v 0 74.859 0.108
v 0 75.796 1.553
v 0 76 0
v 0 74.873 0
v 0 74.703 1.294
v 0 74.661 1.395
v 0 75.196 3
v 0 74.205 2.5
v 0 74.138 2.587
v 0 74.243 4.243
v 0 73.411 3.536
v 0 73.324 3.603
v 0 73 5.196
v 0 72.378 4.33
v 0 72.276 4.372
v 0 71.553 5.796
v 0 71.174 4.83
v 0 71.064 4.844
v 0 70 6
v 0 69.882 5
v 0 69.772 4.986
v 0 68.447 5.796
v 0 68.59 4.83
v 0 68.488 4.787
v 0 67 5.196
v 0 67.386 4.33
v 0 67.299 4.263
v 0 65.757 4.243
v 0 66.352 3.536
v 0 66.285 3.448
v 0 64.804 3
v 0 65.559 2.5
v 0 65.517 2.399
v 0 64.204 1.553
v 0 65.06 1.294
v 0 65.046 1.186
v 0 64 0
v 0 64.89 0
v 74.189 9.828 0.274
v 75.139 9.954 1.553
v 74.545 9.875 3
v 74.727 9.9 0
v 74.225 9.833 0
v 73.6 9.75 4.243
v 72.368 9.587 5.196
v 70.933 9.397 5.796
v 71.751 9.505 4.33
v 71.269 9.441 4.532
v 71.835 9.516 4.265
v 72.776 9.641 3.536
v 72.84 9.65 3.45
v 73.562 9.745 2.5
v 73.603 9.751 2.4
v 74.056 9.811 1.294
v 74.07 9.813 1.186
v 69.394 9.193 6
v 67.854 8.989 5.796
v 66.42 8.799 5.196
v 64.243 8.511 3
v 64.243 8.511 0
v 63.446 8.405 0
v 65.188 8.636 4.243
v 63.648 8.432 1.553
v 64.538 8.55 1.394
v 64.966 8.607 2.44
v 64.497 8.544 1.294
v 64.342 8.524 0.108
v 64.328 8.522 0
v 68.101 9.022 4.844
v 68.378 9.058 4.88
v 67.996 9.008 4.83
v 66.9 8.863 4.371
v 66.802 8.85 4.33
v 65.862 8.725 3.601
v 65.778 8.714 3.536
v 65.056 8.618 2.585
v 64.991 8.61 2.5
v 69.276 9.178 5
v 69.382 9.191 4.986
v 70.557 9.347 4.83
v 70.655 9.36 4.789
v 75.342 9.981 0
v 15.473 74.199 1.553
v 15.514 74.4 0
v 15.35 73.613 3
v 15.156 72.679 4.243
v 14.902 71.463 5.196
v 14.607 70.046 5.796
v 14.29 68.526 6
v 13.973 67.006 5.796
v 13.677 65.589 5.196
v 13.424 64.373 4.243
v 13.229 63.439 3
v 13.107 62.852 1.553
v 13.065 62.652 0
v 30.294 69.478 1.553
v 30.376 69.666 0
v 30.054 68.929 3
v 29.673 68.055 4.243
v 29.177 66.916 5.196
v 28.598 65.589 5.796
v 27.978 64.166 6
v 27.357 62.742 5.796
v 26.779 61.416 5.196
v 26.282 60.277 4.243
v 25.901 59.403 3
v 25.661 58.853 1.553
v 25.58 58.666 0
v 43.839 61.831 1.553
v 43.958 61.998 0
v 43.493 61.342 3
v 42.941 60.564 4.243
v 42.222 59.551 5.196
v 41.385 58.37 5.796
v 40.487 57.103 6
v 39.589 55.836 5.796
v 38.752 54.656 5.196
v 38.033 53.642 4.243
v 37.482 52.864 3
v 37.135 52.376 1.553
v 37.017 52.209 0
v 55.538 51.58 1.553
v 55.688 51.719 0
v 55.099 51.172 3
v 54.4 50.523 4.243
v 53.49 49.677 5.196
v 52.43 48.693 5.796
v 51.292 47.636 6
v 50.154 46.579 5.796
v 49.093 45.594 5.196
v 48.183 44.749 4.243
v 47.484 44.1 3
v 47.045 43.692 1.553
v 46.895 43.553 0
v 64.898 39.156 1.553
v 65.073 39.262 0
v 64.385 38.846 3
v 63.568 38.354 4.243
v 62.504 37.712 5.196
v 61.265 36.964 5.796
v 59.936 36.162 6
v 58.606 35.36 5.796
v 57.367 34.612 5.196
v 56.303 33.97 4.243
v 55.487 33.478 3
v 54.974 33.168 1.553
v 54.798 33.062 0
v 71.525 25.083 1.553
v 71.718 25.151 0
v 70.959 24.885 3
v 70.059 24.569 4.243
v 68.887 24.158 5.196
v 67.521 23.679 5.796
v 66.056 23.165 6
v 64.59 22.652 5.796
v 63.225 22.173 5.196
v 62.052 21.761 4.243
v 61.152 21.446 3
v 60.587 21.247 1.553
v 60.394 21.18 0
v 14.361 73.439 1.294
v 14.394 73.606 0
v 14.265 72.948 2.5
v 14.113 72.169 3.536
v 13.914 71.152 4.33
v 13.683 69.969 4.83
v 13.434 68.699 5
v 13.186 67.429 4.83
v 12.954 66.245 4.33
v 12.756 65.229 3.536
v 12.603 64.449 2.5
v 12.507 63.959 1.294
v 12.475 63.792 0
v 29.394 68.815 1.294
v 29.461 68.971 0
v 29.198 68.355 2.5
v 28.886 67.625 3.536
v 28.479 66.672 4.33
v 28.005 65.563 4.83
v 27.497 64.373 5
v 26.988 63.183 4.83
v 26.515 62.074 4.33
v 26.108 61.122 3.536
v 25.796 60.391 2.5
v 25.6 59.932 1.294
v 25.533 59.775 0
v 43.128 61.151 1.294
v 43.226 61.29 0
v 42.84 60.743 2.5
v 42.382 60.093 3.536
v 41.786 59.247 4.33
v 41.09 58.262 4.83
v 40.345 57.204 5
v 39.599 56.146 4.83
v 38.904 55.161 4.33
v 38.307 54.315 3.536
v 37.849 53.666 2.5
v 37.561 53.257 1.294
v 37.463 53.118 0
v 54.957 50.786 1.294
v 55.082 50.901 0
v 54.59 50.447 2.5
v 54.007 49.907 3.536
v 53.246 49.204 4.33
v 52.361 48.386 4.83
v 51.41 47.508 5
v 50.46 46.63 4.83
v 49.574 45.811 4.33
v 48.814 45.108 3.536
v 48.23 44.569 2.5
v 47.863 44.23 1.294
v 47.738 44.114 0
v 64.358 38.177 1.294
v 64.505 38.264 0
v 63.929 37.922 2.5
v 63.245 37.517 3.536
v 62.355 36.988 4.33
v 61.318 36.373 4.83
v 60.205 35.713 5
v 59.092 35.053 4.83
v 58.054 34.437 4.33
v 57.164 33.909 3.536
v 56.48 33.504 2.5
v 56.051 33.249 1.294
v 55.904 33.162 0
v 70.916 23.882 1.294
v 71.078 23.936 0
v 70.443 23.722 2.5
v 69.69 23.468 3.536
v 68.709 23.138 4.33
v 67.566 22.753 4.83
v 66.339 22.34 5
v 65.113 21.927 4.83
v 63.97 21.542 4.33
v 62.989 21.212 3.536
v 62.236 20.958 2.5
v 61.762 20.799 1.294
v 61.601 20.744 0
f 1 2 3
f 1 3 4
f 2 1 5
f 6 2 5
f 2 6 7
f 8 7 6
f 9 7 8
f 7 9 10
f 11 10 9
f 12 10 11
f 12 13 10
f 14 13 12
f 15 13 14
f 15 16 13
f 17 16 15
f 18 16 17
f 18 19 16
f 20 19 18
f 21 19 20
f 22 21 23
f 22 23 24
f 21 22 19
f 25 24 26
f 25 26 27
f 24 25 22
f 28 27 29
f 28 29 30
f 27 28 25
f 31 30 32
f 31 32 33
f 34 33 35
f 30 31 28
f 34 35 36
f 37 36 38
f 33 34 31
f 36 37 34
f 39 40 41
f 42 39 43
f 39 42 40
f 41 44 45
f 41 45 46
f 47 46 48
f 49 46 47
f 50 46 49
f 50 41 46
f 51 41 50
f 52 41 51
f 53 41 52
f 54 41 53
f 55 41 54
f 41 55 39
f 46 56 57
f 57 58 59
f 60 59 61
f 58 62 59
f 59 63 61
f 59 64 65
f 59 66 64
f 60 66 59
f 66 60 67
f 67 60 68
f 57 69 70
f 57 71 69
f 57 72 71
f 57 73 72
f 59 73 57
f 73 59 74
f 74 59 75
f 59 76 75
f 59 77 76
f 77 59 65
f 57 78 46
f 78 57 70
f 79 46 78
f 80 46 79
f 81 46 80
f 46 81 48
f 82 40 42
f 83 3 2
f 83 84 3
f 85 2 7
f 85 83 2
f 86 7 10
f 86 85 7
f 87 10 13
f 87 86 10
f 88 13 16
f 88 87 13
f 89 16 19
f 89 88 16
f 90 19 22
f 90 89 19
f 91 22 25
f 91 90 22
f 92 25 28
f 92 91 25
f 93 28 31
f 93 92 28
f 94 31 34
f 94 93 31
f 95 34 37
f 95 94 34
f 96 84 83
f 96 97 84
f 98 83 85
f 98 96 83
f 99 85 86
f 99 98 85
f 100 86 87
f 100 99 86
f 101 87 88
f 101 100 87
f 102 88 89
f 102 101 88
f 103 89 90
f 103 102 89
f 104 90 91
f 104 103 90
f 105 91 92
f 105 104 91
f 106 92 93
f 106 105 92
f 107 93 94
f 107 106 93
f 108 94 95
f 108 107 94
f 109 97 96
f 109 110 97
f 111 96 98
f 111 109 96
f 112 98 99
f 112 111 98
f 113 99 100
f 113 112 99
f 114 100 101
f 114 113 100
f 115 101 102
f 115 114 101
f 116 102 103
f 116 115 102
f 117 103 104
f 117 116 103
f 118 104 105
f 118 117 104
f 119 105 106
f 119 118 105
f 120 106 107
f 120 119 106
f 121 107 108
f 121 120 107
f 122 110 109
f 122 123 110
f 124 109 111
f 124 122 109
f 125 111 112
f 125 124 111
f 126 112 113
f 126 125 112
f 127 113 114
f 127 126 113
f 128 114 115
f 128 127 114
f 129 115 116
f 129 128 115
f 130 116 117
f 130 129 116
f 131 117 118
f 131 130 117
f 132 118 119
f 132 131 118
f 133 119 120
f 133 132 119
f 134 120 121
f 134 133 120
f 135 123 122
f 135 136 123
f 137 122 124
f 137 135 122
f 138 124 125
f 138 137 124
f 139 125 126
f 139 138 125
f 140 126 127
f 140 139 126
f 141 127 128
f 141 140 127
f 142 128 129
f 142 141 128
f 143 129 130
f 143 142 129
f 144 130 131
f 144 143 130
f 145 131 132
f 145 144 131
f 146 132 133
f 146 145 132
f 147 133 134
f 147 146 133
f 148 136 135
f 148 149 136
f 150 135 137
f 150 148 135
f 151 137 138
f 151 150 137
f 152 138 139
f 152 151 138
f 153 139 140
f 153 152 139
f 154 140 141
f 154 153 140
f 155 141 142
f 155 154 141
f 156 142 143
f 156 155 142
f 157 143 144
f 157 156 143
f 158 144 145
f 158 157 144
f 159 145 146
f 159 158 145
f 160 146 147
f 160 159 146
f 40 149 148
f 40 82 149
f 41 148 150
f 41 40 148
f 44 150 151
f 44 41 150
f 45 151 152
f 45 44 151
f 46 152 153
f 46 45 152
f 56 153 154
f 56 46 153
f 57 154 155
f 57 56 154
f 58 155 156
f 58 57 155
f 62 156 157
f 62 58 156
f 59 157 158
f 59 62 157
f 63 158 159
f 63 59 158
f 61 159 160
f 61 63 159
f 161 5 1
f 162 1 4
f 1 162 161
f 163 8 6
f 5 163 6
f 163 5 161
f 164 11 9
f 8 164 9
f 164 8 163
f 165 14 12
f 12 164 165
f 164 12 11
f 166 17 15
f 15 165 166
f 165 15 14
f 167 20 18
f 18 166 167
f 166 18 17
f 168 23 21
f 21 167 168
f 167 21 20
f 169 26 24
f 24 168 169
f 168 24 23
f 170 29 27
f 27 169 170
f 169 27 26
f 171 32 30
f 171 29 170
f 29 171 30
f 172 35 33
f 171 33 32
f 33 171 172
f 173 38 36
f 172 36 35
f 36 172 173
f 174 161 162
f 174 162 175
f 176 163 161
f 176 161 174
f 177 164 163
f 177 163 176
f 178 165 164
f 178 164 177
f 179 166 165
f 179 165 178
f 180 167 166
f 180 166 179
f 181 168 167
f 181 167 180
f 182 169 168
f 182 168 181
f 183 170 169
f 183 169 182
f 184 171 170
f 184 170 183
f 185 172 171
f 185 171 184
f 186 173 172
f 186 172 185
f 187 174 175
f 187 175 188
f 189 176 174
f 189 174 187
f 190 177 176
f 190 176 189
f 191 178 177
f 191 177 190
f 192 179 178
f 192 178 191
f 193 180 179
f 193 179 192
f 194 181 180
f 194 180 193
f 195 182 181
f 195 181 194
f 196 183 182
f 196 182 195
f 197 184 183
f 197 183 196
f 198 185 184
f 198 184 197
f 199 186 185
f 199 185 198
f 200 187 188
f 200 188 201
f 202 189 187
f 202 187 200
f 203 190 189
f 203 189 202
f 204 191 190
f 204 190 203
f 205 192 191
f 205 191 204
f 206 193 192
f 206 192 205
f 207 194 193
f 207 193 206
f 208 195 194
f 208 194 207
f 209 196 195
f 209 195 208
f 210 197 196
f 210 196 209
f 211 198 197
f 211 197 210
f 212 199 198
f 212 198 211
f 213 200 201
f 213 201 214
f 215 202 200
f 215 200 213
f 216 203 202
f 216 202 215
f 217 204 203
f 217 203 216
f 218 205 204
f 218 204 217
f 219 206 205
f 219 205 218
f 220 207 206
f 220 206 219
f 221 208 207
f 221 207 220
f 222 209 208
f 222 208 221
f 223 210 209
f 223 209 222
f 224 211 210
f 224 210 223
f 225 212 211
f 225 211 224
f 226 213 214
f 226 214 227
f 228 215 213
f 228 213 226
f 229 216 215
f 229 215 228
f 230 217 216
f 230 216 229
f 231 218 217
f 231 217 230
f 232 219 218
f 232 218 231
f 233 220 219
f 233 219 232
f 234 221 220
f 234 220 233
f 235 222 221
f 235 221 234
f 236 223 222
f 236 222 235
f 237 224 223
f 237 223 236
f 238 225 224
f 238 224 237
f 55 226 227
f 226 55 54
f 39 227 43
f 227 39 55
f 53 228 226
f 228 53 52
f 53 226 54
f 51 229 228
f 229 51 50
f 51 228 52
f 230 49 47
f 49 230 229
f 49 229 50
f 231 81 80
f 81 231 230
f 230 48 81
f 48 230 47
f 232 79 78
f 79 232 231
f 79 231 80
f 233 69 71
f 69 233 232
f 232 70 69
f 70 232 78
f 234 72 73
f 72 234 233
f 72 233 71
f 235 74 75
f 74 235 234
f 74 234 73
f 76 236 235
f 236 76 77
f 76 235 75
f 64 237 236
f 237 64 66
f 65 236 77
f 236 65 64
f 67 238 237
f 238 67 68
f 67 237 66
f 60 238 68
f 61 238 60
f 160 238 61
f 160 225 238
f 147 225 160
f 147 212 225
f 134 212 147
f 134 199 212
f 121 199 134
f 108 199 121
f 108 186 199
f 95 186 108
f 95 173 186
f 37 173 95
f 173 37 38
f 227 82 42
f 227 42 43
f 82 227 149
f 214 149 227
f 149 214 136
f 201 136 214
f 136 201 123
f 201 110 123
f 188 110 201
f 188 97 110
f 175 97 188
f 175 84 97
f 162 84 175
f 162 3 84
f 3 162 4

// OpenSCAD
// file: ../build_environments.scad
// build_environments.scad: modules to build level sections
//

module pool(diameter=10.0, wall_height=2.0, step_width=3.0, connections=[])
{
    difference() {
        union() {
        difference() {
            cylinder(h=0.5,r1=diameter+step_width,r2=diameter+step_width,$fn=48);
            translate([0,0,-0.1])
                cylinder(h=0.7,r1=diameter,r2=diameter,$fn=48);
        }
        difference() {
            cylinder(h=wall_height,r1=diameter+step_width+1.0,r2=diameter+step_width+1.0,$fn=48);
            translate([0,0,-0.1])
                cylinder(h=wall_height+0.2,r1=diameter+step_width,r2=diameter+step_width,$fn=48);
        }
        }
    
        for (c = connections)
        {
            rotate([0,90,0]) {
                angle = atan2(c[1],c[0]);
                rotate([-angle,0,0]) {
                    cylinder(h=diameter+5.0,r1=c[2],r2=c[2],$fn=48);
                }
            }
        }
    }
}

module straight(length=10.0, width=2.0, dy1=0.0, dy2=0.0, dz=0.0)
{
    dims = [0, 0, 0, 0, 0, (dz/length)];
    matrix = [
        [ 1, dims[0], dims[1], 0 ],
        [ dims[2], 1, dims[4], 0 ],
        [ dims[5], dims[3], 1, 0 ],
        [ 0, 0, 0, 1 ]
    ];
    multmatrix(matrix)
    difference() {
        translate([dy1,0,0])
        union() {
            rotate([0,90,0]) {
                difference() {
                    cylinder(h=(length-dy1-dy2),r1=width+1.0,r2=width+1.0,$fn=24);
                    translate([0,0,-0.1])
                        cylinder(h=(length-dy1-dy2+0.2),r1=width,r2=width,$fn=24);
                }
                difference() {
                    cylinder(h=1.0,r1=width+2.0,r2=width+2.0,$fn=24);
                    translate([0,0,-0.1])
                        cylinder(h=1.2,r1=width,r2=width,$fn=24);
                }
                translate([0,0,(length-dy1-dy2)-1.0]) {
                    difference() {
                        cylinder(h=1.0,r1=width+2.0,r2=width+2.0,$fn=24);
                        translate([0,0,-0.1])
                            cylinder(h=1.2,r1=width,r2=width,$fn=24);
                    }
                }
            }
        }
        translate([0,0,-(2*width+4.0)/2])
            cube([3*length,3*length,2*width+4.0],center=true);
    }
}

module curve(p0=[0,0], center=[0,0], dir=1, angle=0.0, width=2.0)
{
    radius = sqrt((p0[0]-center[0])*(p0[0]-center[0]) + (p0[1]-center[1])*(p0[1]-center[1]));
    if (dir == 0) {
        difference() {
            rotate([0,0,-90])
            difference() {
                rotate_extrude(angle = angle, convexity = 10, $fn=32)
                    translate([radius, 0, 0])
                        circle(r = width+1.0,$fn=24);
                rotate([0,0,-1.0])
                    rotate_extrude(angle = angle+2.0, convexity = 10, $fn=32)
                        translate([radius, 0, 0])
                            circle(r = width,$fn=24);
            }
            translate([0,0,-(2*width+4.0)/2])
                cube([5*radius,5*radius,2*width+4.0],center=true);
        }
    }
    else {
        difference() {
            rotate([0,0,90])
            difference() {
                rotate_extrude(angle = -angle, convexity = 10, $fn=32)
                    translate([radius, 0, 0])
                        circle(r = width+1.0,$fn=24);
                rotate([0,0,1.0])
                    rotate_extrude(angle = -angle-2.0, convexity = 10, $fn=32)
                        translate([radius, 0, 0])
                            circle(r = width,$fn=24);
            }
            translate([0,0,-(2*width+4.0)/2])
                cube([5*radius,5*radius,2*width+4.0],center=true);
        }
    }

}

// test pool
//pool(diameter=12.0000, wall_height=3.0000, step_width=3.0000, connections=[[0.0000,-26.0000,2.0000], [23.6074,0.0000,2.0000]]);

// test straight, slope
//straight(length=26.0000, width=2.0000, dy1=11.8322, dy2=6.7082, dz=0.0000);
//straight(length=29.1549, width=12.0000, dy1=0.0000, dy2=0.0000, dz=-15.0000);

// test curve
//curve(p0=[23.6074, 0.0000], center=[23.6074, 5.0000], dir=0, angle=60.1011, width=2.0000);
//curve(p0=[33.6426, 12.4219], center=[37.9771, 9.9295], dir=1, angle=120.4627, width=2.0000);
// main file
use <../build_environments.scad>;
curve(p0=[-60.7028, -157.5705], center=[-69.9283, -226.9599], dir=1, angle=82.4536, width=5.0000);
